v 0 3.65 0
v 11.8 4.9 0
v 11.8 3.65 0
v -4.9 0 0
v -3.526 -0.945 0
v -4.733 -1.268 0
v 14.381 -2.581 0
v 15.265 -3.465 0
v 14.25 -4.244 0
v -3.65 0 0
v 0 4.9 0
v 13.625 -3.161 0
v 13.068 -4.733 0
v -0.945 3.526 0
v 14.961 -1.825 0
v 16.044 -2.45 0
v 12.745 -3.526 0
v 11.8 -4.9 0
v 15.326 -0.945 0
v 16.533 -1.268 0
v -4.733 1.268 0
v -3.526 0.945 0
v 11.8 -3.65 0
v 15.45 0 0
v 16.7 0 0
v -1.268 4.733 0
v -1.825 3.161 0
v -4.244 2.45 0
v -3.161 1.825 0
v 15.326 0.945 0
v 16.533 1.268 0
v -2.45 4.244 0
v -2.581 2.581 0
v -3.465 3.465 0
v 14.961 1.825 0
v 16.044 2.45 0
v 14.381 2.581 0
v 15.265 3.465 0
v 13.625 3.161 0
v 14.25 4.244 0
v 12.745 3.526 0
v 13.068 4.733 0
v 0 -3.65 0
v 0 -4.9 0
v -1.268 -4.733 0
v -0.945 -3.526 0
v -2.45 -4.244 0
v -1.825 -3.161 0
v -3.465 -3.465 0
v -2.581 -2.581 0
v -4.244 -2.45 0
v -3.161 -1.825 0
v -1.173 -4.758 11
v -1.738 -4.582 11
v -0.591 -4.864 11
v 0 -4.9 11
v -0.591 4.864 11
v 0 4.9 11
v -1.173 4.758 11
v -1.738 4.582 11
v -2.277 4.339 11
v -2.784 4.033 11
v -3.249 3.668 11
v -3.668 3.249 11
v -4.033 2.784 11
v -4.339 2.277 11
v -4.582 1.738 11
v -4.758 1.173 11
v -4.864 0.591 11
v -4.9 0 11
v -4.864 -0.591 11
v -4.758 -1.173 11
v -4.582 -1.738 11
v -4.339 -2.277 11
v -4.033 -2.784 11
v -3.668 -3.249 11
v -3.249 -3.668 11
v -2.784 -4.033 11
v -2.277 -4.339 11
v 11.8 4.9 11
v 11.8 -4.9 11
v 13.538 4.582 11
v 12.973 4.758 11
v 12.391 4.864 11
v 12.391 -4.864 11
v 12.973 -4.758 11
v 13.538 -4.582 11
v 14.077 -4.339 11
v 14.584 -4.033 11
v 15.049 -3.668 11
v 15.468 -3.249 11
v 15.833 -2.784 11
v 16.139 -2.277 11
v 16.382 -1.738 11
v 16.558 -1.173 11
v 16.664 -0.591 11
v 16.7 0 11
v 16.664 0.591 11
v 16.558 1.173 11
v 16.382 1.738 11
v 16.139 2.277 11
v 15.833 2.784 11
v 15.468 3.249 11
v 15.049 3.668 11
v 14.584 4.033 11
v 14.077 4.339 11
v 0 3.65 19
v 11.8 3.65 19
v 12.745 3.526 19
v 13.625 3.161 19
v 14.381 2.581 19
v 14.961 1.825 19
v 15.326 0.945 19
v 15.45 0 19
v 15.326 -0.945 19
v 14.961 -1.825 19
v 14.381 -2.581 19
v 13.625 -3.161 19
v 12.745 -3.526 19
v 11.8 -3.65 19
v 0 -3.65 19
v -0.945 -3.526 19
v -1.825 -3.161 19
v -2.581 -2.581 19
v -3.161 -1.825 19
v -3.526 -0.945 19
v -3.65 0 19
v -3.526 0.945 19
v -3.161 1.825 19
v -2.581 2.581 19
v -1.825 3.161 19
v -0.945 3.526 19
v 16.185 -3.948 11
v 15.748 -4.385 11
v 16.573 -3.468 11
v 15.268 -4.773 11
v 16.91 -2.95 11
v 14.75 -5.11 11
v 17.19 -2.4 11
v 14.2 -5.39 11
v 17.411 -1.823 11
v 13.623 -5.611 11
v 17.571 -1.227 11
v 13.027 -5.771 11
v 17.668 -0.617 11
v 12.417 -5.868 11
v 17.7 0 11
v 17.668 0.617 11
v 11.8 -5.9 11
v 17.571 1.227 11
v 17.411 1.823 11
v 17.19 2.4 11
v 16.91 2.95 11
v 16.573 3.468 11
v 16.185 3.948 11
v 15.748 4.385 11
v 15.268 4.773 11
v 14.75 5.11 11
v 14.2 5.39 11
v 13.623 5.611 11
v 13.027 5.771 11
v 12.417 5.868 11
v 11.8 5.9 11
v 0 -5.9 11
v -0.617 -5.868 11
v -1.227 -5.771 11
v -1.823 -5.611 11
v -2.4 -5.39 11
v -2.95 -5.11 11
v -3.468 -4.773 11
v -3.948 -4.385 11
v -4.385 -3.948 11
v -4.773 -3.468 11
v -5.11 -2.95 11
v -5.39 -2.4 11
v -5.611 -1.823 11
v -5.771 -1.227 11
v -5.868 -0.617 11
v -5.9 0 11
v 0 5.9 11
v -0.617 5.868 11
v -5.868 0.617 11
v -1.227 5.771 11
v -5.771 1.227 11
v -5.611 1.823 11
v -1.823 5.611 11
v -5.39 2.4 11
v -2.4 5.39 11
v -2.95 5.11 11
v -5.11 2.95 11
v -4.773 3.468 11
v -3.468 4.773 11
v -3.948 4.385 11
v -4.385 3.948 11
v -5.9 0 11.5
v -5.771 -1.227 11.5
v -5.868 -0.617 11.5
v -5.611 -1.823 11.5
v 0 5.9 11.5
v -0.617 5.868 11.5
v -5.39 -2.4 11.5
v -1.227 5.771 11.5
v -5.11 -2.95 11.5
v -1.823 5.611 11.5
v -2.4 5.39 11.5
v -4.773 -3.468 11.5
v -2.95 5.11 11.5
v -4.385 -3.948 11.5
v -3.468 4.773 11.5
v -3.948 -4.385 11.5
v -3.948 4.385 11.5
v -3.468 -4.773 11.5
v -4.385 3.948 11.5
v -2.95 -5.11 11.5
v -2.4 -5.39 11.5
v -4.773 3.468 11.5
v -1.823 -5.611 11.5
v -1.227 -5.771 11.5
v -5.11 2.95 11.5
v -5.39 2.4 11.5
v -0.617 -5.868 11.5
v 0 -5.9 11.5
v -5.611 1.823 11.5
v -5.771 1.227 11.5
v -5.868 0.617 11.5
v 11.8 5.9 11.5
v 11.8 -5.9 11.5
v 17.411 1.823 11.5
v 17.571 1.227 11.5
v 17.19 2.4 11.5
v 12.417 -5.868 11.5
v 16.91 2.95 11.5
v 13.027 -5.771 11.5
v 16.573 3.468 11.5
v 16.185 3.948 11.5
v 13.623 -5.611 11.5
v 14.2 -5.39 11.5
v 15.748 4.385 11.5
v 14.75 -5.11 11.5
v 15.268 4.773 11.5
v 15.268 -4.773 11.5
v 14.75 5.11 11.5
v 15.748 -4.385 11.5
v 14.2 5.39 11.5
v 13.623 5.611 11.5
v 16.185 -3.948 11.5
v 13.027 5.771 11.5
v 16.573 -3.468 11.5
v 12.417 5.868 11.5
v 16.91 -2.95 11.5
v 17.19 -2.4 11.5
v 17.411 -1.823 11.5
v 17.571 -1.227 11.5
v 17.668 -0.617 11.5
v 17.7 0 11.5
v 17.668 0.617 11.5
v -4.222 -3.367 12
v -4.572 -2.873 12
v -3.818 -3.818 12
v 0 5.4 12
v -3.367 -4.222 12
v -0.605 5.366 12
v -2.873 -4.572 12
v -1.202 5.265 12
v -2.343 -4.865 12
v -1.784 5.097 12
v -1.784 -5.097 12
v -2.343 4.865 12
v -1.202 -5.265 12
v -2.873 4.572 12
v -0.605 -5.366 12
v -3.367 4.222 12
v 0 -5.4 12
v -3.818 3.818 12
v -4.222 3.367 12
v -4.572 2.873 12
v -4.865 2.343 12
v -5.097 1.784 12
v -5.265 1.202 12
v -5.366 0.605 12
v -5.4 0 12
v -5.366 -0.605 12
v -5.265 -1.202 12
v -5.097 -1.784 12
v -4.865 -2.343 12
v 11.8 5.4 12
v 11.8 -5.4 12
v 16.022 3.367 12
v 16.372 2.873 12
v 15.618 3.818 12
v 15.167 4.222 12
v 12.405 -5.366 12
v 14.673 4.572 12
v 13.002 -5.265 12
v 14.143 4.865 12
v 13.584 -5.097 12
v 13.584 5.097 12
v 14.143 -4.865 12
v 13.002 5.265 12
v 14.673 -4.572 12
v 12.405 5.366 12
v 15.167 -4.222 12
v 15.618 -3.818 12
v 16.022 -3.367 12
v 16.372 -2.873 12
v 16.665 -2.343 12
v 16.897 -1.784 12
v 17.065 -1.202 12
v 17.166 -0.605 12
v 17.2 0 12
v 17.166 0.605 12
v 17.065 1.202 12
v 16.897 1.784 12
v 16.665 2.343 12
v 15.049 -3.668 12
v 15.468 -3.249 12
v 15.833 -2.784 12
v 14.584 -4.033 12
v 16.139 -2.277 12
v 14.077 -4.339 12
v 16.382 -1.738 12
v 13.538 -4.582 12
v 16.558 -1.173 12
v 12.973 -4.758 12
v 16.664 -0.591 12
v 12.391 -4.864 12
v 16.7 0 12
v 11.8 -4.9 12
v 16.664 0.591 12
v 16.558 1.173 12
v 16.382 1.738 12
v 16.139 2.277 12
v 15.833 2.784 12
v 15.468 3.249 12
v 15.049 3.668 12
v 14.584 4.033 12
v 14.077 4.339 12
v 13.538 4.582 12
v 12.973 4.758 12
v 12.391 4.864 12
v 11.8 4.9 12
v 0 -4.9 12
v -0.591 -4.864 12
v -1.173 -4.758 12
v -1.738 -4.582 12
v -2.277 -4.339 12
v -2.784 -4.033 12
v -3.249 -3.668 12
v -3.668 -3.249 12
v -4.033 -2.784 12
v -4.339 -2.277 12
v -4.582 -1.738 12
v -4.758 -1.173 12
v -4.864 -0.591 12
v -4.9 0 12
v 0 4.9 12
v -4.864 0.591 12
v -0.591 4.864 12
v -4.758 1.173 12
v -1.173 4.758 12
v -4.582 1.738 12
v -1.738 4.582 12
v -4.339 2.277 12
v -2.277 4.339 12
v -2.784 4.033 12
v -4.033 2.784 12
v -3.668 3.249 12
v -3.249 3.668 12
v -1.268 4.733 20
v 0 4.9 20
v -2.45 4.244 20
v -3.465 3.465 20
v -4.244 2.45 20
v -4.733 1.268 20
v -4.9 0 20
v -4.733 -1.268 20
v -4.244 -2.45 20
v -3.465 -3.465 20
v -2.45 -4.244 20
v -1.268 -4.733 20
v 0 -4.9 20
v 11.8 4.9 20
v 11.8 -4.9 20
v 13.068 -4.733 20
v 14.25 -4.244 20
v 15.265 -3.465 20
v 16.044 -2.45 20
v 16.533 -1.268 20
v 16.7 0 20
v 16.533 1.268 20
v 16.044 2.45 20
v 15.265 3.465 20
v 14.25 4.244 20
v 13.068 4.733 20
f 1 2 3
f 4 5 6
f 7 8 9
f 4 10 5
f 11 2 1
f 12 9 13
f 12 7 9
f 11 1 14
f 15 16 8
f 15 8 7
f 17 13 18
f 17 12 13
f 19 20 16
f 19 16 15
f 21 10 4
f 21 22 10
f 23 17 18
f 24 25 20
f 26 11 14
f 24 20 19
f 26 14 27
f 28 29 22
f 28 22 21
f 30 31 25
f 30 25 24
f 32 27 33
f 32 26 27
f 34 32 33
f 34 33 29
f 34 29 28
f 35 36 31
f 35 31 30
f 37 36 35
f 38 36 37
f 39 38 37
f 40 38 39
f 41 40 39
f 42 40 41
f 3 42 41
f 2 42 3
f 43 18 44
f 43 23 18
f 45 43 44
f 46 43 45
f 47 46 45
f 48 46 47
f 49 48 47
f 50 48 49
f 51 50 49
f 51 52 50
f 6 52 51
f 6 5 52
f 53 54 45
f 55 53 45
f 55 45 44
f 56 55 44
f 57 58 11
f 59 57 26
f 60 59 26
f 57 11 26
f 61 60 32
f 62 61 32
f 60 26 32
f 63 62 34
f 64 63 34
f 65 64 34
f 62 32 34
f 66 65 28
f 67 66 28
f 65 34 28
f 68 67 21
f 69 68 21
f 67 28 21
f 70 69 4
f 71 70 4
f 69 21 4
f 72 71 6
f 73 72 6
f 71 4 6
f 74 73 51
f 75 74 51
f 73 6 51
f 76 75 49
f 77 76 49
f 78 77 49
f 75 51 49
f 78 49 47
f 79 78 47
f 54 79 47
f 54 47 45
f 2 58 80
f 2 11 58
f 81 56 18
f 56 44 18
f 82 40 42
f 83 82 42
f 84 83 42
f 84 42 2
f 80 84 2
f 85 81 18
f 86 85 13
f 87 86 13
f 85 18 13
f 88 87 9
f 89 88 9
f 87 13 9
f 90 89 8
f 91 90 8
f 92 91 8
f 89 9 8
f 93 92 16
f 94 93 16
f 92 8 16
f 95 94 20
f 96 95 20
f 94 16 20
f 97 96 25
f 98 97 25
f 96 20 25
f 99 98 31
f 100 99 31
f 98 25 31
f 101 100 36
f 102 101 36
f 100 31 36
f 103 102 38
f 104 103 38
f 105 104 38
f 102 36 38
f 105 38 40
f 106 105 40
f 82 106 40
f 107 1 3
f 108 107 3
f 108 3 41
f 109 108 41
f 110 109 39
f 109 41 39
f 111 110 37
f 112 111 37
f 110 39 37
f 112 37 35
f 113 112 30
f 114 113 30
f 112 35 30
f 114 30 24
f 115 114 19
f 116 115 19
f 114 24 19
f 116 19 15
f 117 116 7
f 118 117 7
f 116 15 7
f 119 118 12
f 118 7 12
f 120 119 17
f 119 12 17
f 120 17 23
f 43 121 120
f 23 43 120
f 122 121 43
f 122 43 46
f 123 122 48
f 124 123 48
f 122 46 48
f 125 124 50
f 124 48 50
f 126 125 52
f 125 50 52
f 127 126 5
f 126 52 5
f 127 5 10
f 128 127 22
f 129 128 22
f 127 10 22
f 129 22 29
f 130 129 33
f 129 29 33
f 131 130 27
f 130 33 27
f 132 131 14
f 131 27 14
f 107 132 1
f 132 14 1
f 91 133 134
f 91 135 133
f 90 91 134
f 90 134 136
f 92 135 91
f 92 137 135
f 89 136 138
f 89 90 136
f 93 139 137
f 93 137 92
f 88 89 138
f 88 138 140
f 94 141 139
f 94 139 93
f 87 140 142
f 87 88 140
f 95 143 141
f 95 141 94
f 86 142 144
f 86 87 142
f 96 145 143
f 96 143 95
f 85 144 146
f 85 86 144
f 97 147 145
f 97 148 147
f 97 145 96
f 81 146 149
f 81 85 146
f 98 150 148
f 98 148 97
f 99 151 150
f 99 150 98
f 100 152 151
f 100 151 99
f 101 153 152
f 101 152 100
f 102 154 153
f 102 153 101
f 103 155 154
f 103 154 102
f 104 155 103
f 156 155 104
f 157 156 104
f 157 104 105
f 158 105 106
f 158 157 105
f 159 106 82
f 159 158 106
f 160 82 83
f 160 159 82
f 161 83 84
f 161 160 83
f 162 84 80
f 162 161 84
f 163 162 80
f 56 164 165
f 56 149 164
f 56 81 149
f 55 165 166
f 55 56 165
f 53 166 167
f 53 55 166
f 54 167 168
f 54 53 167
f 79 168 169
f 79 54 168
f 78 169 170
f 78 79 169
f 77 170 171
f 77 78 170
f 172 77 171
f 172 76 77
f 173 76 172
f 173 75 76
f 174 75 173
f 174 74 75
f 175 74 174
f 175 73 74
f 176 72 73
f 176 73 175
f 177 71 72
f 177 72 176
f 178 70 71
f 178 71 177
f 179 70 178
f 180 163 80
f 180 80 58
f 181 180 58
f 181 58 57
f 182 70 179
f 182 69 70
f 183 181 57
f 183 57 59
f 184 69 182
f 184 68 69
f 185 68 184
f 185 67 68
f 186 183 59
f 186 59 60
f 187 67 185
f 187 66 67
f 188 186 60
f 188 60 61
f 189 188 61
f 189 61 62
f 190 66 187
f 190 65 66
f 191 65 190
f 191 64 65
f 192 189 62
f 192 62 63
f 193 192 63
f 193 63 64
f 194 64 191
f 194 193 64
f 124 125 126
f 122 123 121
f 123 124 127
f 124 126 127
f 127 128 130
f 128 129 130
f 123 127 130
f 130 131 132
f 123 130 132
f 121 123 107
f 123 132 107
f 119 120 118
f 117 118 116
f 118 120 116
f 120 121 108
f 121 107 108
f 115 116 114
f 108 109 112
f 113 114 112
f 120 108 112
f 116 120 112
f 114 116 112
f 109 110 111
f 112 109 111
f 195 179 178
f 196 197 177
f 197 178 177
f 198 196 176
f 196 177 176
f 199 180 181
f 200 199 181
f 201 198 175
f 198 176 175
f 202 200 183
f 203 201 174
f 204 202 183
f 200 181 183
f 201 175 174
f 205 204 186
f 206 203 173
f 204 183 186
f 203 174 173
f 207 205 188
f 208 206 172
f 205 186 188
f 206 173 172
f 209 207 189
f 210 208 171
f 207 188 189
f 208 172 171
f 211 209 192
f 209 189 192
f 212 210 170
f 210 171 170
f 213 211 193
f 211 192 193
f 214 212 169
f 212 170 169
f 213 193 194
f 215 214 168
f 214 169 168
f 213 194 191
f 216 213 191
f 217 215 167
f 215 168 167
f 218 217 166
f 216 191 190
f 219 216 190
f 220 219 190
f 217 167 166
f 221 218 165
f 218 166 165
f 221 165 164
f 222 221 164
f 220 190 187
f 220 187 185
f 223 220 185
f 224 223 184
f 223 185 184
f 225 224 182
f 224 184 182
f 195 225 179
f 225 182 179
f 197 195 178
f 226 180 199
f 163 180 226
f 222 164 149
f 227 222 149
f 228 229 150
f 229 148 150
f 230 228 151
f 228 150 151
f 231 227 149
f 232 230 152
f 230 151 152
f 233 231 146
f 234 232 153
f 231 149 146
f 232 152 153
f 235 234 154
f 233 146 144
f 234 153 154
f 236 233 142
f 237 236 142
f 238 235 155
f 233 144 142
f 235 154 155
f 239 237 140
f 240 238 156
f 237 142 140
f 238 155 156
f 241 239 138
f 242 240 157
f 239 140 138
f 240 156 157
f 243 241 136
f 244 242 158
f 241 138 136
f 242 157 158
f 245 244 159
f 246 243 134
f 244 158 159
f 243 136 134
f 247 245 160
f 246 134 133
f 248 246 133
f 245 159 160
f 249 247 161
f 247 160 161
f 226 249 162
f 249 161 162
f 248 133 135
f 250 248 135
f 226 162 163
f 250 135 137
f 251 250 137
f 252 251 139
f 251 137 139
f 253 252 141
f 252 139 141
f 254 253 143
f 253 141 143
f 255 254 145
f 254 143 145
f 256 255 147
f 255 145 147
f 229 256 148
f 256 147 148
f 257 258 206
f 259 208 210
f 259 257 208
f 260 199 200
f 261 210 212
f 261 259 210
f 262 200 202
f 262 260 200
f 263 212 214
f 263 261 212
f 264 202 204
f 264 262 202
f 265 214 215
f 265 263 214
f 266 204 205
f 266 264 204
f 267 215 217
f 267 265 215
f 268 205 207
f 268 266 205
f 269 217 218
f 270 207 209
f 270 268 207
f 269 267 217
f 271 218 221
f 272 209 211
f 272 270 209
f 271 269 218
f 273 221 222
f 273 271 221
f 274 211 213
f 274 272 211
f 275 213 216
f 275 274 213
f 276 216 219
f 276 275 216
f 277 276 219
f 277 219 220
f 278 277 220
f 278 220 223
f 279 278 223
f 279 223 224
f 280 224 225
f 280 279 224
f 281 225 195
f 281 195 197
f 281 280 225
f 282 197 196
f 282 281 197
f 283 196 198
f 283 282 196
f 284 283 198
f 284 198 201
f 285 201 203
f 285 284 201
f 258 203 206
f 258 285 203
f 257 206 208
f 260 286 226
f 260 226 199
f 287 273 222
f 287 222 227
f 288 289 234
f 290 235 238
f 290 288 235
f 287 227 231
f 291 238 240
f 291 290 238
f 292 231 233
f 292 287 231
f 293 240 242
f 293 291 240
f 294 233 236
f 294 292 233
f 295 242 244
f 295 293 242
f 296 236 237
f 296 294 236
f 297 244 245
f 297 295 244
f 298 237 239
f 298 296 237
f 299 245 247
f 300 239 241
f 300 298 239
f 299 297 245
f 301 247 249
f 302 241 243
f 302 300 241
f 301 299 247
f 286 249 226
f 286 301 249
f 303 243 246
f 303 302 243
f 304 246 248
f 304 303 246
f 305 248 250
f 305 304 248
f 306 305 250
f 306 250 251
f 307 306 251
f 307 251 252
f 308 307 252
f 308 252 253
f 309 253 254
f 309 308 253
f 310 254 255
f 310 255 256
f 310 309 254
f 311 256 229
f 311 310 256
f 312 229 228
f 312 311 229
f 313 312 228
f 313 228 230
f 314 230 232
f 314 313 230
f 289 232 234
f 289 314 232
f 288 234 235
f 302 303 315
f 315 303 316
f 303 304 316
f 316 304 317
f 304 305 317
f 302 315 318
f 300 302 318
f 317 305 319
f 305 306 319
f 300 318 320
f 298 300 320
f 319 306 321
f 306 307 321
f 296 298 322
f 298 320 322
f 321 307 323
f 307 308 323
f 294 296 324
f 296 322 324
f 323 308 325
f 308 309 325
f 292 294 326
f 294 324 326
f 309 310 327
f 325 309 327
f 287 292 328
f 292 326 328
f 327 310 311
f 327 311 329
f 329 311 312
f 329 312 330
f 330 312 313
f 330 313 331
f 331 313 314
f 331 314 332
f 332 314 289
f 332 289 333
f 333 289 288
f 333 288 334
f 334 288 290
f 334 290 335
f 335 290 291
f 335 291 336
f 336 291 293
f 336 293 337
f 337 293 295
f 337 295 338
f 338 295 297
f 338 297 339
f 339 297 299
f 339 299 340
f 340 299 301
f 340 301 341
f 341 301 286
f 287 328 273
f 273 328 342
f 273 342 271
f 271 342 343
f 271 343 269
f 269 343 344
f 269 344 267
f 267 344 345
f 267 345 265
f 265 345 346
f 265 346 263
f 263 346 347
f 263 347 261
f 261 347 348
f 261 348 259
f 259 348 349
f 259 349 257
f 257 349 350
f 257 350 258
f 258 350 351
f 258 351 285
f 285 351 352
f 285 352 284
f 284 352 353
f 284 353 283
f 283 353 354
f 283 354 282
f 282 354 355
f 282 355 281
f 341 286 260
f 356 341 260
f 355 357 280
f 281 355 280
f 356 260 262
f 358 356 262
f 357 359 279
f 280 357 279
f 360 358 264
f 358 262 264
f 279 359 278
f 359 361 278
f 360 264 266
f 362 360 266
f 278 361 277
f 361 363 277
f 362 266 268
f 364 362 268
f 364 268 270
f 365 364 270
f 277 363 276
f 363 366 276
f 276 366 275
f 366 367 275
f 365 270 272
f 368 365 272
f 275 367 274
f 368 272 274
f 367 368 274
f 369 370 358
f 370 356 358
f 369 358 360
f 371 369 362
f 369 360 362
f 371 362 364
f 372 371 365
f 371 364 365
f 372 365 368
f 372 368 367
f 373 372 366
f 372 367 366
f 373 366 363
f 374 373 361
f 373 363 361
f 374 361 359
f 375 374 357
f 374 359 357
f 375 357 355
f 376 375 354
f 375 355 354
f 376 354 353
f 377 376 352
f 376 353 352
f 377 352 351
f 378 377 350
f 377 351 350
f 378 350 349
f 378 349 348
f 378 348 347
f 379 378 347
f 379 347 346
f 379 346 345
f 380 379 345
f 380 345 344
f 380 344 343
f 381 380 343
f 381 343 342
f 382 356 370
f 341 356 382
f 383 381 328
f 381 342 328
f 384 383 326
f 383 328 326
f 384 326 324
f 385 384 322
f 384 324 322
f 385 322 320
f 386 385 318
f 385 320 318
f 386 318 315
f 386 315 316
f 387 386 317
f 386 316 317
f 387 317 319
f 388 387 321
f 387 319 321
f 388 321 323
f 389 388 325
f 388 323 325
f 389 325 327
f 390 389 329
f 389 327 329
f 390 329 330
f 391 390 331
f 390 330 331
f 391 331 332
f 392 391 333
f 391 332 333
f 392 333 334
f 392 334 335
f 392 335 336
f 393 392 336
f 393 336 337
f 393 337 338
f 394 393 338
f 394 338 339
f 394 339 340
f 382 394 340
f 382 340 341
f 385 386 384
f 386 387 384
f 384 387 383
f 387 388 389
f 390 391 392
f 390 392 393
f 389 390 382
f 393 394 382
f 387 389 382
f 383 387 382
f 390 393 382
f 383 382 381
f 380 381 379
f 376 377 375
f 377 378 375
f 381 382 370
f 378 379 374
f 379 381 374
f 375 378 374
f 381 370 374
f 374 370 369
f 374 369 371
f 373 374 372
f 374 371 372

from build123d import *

# Parameters (mm, degrees)
PAD001_DEPTH = 1
CHAMFER_SIZE = 0.5
PAD_DEPTH    = 20
POCKET_DEPTH = 19


with BuildPart() as chamfer_body:
    # Sketch003 → Pad001 (new body)
    with BuildSketch(Plane.XY.offset(11)):
        with BuildLine():
            ThreePointArc((0, 5.9), (-5.9, 0), (0, -5.9))
            Line((0, -5.9), (11.8, -5.9))
            ThreePointArc((11.8, -5.9), (17.7, 0), (11.8, 5.9))
            Line((0, 5.9), (11.8, 5.9))
        make_face()
        with BuildLine():
            ThreePointArc((0, 4.9), (-4.9, 0), (0, -4.9))
            Line((0, -4.9), (11.8, -4.9))
            ThreePointArc((11.8, -4.9), (16.7, 0), (11.8, 4.9))
            Line((0, 4.9), (11.8, 4.9))
        make_face(mode=Mode.SUBTRACT)
    extrude(amount=PAD001_DEPTH)

    # Chamfer
    chamfer_edges = [chamfer_body.edges().sort_by_distance(p)[0] for p in [
        (5.9, -5.9, 12),
        (-5.9, 0, 12),
        (17.7, 0, 12),
        (5.9, 5.9, 12),
    ]]
    chamfer(chamfer_edges, length=CHAMFER_SIZE)


with BuildPart() as fusion:
    # Sketch → Pad (new body)
    with BuildSketch(Plane.XY):
        with BuildLine():
            ThreePointArc((0, 4.9), (-4.9, 0), (0, -4.9))
            Line((0, -4.9), (11.8, -4.9))
            ThreePointArc((11.8, -4.9), (16.7, 0), (11.8, 4.9))
            Line((0, 4.9), (11.8, 4.9))
        make_face()
    extrude(amount=PAD_DEPTH)

    # Sketch001 → Pocket (cut)
    with BuildSketch(Plane(origin=(0, 0, 0), x_dir=(1, 0, 0), z_dir=(0, 0, -1))):
        with BuildLine():
            ThreePointArc((0, 3.65), (-3.65, 0), (0, -3.65))
            Line((0, -3.65), (11.8, -3.65))
            ThreePointArc((11.8, -3.65), (15.45, 0), (11.8, 3.65))
            Line((0, 3.65), (11.8, 3.65))
        make_face()
    extrude(amount=-POCKET_DEPTH, mode=Mode.SUBTRACT)

    # Fusion: union Chamfer body
    add(chamfer_body.part)


solid = fusion.part
